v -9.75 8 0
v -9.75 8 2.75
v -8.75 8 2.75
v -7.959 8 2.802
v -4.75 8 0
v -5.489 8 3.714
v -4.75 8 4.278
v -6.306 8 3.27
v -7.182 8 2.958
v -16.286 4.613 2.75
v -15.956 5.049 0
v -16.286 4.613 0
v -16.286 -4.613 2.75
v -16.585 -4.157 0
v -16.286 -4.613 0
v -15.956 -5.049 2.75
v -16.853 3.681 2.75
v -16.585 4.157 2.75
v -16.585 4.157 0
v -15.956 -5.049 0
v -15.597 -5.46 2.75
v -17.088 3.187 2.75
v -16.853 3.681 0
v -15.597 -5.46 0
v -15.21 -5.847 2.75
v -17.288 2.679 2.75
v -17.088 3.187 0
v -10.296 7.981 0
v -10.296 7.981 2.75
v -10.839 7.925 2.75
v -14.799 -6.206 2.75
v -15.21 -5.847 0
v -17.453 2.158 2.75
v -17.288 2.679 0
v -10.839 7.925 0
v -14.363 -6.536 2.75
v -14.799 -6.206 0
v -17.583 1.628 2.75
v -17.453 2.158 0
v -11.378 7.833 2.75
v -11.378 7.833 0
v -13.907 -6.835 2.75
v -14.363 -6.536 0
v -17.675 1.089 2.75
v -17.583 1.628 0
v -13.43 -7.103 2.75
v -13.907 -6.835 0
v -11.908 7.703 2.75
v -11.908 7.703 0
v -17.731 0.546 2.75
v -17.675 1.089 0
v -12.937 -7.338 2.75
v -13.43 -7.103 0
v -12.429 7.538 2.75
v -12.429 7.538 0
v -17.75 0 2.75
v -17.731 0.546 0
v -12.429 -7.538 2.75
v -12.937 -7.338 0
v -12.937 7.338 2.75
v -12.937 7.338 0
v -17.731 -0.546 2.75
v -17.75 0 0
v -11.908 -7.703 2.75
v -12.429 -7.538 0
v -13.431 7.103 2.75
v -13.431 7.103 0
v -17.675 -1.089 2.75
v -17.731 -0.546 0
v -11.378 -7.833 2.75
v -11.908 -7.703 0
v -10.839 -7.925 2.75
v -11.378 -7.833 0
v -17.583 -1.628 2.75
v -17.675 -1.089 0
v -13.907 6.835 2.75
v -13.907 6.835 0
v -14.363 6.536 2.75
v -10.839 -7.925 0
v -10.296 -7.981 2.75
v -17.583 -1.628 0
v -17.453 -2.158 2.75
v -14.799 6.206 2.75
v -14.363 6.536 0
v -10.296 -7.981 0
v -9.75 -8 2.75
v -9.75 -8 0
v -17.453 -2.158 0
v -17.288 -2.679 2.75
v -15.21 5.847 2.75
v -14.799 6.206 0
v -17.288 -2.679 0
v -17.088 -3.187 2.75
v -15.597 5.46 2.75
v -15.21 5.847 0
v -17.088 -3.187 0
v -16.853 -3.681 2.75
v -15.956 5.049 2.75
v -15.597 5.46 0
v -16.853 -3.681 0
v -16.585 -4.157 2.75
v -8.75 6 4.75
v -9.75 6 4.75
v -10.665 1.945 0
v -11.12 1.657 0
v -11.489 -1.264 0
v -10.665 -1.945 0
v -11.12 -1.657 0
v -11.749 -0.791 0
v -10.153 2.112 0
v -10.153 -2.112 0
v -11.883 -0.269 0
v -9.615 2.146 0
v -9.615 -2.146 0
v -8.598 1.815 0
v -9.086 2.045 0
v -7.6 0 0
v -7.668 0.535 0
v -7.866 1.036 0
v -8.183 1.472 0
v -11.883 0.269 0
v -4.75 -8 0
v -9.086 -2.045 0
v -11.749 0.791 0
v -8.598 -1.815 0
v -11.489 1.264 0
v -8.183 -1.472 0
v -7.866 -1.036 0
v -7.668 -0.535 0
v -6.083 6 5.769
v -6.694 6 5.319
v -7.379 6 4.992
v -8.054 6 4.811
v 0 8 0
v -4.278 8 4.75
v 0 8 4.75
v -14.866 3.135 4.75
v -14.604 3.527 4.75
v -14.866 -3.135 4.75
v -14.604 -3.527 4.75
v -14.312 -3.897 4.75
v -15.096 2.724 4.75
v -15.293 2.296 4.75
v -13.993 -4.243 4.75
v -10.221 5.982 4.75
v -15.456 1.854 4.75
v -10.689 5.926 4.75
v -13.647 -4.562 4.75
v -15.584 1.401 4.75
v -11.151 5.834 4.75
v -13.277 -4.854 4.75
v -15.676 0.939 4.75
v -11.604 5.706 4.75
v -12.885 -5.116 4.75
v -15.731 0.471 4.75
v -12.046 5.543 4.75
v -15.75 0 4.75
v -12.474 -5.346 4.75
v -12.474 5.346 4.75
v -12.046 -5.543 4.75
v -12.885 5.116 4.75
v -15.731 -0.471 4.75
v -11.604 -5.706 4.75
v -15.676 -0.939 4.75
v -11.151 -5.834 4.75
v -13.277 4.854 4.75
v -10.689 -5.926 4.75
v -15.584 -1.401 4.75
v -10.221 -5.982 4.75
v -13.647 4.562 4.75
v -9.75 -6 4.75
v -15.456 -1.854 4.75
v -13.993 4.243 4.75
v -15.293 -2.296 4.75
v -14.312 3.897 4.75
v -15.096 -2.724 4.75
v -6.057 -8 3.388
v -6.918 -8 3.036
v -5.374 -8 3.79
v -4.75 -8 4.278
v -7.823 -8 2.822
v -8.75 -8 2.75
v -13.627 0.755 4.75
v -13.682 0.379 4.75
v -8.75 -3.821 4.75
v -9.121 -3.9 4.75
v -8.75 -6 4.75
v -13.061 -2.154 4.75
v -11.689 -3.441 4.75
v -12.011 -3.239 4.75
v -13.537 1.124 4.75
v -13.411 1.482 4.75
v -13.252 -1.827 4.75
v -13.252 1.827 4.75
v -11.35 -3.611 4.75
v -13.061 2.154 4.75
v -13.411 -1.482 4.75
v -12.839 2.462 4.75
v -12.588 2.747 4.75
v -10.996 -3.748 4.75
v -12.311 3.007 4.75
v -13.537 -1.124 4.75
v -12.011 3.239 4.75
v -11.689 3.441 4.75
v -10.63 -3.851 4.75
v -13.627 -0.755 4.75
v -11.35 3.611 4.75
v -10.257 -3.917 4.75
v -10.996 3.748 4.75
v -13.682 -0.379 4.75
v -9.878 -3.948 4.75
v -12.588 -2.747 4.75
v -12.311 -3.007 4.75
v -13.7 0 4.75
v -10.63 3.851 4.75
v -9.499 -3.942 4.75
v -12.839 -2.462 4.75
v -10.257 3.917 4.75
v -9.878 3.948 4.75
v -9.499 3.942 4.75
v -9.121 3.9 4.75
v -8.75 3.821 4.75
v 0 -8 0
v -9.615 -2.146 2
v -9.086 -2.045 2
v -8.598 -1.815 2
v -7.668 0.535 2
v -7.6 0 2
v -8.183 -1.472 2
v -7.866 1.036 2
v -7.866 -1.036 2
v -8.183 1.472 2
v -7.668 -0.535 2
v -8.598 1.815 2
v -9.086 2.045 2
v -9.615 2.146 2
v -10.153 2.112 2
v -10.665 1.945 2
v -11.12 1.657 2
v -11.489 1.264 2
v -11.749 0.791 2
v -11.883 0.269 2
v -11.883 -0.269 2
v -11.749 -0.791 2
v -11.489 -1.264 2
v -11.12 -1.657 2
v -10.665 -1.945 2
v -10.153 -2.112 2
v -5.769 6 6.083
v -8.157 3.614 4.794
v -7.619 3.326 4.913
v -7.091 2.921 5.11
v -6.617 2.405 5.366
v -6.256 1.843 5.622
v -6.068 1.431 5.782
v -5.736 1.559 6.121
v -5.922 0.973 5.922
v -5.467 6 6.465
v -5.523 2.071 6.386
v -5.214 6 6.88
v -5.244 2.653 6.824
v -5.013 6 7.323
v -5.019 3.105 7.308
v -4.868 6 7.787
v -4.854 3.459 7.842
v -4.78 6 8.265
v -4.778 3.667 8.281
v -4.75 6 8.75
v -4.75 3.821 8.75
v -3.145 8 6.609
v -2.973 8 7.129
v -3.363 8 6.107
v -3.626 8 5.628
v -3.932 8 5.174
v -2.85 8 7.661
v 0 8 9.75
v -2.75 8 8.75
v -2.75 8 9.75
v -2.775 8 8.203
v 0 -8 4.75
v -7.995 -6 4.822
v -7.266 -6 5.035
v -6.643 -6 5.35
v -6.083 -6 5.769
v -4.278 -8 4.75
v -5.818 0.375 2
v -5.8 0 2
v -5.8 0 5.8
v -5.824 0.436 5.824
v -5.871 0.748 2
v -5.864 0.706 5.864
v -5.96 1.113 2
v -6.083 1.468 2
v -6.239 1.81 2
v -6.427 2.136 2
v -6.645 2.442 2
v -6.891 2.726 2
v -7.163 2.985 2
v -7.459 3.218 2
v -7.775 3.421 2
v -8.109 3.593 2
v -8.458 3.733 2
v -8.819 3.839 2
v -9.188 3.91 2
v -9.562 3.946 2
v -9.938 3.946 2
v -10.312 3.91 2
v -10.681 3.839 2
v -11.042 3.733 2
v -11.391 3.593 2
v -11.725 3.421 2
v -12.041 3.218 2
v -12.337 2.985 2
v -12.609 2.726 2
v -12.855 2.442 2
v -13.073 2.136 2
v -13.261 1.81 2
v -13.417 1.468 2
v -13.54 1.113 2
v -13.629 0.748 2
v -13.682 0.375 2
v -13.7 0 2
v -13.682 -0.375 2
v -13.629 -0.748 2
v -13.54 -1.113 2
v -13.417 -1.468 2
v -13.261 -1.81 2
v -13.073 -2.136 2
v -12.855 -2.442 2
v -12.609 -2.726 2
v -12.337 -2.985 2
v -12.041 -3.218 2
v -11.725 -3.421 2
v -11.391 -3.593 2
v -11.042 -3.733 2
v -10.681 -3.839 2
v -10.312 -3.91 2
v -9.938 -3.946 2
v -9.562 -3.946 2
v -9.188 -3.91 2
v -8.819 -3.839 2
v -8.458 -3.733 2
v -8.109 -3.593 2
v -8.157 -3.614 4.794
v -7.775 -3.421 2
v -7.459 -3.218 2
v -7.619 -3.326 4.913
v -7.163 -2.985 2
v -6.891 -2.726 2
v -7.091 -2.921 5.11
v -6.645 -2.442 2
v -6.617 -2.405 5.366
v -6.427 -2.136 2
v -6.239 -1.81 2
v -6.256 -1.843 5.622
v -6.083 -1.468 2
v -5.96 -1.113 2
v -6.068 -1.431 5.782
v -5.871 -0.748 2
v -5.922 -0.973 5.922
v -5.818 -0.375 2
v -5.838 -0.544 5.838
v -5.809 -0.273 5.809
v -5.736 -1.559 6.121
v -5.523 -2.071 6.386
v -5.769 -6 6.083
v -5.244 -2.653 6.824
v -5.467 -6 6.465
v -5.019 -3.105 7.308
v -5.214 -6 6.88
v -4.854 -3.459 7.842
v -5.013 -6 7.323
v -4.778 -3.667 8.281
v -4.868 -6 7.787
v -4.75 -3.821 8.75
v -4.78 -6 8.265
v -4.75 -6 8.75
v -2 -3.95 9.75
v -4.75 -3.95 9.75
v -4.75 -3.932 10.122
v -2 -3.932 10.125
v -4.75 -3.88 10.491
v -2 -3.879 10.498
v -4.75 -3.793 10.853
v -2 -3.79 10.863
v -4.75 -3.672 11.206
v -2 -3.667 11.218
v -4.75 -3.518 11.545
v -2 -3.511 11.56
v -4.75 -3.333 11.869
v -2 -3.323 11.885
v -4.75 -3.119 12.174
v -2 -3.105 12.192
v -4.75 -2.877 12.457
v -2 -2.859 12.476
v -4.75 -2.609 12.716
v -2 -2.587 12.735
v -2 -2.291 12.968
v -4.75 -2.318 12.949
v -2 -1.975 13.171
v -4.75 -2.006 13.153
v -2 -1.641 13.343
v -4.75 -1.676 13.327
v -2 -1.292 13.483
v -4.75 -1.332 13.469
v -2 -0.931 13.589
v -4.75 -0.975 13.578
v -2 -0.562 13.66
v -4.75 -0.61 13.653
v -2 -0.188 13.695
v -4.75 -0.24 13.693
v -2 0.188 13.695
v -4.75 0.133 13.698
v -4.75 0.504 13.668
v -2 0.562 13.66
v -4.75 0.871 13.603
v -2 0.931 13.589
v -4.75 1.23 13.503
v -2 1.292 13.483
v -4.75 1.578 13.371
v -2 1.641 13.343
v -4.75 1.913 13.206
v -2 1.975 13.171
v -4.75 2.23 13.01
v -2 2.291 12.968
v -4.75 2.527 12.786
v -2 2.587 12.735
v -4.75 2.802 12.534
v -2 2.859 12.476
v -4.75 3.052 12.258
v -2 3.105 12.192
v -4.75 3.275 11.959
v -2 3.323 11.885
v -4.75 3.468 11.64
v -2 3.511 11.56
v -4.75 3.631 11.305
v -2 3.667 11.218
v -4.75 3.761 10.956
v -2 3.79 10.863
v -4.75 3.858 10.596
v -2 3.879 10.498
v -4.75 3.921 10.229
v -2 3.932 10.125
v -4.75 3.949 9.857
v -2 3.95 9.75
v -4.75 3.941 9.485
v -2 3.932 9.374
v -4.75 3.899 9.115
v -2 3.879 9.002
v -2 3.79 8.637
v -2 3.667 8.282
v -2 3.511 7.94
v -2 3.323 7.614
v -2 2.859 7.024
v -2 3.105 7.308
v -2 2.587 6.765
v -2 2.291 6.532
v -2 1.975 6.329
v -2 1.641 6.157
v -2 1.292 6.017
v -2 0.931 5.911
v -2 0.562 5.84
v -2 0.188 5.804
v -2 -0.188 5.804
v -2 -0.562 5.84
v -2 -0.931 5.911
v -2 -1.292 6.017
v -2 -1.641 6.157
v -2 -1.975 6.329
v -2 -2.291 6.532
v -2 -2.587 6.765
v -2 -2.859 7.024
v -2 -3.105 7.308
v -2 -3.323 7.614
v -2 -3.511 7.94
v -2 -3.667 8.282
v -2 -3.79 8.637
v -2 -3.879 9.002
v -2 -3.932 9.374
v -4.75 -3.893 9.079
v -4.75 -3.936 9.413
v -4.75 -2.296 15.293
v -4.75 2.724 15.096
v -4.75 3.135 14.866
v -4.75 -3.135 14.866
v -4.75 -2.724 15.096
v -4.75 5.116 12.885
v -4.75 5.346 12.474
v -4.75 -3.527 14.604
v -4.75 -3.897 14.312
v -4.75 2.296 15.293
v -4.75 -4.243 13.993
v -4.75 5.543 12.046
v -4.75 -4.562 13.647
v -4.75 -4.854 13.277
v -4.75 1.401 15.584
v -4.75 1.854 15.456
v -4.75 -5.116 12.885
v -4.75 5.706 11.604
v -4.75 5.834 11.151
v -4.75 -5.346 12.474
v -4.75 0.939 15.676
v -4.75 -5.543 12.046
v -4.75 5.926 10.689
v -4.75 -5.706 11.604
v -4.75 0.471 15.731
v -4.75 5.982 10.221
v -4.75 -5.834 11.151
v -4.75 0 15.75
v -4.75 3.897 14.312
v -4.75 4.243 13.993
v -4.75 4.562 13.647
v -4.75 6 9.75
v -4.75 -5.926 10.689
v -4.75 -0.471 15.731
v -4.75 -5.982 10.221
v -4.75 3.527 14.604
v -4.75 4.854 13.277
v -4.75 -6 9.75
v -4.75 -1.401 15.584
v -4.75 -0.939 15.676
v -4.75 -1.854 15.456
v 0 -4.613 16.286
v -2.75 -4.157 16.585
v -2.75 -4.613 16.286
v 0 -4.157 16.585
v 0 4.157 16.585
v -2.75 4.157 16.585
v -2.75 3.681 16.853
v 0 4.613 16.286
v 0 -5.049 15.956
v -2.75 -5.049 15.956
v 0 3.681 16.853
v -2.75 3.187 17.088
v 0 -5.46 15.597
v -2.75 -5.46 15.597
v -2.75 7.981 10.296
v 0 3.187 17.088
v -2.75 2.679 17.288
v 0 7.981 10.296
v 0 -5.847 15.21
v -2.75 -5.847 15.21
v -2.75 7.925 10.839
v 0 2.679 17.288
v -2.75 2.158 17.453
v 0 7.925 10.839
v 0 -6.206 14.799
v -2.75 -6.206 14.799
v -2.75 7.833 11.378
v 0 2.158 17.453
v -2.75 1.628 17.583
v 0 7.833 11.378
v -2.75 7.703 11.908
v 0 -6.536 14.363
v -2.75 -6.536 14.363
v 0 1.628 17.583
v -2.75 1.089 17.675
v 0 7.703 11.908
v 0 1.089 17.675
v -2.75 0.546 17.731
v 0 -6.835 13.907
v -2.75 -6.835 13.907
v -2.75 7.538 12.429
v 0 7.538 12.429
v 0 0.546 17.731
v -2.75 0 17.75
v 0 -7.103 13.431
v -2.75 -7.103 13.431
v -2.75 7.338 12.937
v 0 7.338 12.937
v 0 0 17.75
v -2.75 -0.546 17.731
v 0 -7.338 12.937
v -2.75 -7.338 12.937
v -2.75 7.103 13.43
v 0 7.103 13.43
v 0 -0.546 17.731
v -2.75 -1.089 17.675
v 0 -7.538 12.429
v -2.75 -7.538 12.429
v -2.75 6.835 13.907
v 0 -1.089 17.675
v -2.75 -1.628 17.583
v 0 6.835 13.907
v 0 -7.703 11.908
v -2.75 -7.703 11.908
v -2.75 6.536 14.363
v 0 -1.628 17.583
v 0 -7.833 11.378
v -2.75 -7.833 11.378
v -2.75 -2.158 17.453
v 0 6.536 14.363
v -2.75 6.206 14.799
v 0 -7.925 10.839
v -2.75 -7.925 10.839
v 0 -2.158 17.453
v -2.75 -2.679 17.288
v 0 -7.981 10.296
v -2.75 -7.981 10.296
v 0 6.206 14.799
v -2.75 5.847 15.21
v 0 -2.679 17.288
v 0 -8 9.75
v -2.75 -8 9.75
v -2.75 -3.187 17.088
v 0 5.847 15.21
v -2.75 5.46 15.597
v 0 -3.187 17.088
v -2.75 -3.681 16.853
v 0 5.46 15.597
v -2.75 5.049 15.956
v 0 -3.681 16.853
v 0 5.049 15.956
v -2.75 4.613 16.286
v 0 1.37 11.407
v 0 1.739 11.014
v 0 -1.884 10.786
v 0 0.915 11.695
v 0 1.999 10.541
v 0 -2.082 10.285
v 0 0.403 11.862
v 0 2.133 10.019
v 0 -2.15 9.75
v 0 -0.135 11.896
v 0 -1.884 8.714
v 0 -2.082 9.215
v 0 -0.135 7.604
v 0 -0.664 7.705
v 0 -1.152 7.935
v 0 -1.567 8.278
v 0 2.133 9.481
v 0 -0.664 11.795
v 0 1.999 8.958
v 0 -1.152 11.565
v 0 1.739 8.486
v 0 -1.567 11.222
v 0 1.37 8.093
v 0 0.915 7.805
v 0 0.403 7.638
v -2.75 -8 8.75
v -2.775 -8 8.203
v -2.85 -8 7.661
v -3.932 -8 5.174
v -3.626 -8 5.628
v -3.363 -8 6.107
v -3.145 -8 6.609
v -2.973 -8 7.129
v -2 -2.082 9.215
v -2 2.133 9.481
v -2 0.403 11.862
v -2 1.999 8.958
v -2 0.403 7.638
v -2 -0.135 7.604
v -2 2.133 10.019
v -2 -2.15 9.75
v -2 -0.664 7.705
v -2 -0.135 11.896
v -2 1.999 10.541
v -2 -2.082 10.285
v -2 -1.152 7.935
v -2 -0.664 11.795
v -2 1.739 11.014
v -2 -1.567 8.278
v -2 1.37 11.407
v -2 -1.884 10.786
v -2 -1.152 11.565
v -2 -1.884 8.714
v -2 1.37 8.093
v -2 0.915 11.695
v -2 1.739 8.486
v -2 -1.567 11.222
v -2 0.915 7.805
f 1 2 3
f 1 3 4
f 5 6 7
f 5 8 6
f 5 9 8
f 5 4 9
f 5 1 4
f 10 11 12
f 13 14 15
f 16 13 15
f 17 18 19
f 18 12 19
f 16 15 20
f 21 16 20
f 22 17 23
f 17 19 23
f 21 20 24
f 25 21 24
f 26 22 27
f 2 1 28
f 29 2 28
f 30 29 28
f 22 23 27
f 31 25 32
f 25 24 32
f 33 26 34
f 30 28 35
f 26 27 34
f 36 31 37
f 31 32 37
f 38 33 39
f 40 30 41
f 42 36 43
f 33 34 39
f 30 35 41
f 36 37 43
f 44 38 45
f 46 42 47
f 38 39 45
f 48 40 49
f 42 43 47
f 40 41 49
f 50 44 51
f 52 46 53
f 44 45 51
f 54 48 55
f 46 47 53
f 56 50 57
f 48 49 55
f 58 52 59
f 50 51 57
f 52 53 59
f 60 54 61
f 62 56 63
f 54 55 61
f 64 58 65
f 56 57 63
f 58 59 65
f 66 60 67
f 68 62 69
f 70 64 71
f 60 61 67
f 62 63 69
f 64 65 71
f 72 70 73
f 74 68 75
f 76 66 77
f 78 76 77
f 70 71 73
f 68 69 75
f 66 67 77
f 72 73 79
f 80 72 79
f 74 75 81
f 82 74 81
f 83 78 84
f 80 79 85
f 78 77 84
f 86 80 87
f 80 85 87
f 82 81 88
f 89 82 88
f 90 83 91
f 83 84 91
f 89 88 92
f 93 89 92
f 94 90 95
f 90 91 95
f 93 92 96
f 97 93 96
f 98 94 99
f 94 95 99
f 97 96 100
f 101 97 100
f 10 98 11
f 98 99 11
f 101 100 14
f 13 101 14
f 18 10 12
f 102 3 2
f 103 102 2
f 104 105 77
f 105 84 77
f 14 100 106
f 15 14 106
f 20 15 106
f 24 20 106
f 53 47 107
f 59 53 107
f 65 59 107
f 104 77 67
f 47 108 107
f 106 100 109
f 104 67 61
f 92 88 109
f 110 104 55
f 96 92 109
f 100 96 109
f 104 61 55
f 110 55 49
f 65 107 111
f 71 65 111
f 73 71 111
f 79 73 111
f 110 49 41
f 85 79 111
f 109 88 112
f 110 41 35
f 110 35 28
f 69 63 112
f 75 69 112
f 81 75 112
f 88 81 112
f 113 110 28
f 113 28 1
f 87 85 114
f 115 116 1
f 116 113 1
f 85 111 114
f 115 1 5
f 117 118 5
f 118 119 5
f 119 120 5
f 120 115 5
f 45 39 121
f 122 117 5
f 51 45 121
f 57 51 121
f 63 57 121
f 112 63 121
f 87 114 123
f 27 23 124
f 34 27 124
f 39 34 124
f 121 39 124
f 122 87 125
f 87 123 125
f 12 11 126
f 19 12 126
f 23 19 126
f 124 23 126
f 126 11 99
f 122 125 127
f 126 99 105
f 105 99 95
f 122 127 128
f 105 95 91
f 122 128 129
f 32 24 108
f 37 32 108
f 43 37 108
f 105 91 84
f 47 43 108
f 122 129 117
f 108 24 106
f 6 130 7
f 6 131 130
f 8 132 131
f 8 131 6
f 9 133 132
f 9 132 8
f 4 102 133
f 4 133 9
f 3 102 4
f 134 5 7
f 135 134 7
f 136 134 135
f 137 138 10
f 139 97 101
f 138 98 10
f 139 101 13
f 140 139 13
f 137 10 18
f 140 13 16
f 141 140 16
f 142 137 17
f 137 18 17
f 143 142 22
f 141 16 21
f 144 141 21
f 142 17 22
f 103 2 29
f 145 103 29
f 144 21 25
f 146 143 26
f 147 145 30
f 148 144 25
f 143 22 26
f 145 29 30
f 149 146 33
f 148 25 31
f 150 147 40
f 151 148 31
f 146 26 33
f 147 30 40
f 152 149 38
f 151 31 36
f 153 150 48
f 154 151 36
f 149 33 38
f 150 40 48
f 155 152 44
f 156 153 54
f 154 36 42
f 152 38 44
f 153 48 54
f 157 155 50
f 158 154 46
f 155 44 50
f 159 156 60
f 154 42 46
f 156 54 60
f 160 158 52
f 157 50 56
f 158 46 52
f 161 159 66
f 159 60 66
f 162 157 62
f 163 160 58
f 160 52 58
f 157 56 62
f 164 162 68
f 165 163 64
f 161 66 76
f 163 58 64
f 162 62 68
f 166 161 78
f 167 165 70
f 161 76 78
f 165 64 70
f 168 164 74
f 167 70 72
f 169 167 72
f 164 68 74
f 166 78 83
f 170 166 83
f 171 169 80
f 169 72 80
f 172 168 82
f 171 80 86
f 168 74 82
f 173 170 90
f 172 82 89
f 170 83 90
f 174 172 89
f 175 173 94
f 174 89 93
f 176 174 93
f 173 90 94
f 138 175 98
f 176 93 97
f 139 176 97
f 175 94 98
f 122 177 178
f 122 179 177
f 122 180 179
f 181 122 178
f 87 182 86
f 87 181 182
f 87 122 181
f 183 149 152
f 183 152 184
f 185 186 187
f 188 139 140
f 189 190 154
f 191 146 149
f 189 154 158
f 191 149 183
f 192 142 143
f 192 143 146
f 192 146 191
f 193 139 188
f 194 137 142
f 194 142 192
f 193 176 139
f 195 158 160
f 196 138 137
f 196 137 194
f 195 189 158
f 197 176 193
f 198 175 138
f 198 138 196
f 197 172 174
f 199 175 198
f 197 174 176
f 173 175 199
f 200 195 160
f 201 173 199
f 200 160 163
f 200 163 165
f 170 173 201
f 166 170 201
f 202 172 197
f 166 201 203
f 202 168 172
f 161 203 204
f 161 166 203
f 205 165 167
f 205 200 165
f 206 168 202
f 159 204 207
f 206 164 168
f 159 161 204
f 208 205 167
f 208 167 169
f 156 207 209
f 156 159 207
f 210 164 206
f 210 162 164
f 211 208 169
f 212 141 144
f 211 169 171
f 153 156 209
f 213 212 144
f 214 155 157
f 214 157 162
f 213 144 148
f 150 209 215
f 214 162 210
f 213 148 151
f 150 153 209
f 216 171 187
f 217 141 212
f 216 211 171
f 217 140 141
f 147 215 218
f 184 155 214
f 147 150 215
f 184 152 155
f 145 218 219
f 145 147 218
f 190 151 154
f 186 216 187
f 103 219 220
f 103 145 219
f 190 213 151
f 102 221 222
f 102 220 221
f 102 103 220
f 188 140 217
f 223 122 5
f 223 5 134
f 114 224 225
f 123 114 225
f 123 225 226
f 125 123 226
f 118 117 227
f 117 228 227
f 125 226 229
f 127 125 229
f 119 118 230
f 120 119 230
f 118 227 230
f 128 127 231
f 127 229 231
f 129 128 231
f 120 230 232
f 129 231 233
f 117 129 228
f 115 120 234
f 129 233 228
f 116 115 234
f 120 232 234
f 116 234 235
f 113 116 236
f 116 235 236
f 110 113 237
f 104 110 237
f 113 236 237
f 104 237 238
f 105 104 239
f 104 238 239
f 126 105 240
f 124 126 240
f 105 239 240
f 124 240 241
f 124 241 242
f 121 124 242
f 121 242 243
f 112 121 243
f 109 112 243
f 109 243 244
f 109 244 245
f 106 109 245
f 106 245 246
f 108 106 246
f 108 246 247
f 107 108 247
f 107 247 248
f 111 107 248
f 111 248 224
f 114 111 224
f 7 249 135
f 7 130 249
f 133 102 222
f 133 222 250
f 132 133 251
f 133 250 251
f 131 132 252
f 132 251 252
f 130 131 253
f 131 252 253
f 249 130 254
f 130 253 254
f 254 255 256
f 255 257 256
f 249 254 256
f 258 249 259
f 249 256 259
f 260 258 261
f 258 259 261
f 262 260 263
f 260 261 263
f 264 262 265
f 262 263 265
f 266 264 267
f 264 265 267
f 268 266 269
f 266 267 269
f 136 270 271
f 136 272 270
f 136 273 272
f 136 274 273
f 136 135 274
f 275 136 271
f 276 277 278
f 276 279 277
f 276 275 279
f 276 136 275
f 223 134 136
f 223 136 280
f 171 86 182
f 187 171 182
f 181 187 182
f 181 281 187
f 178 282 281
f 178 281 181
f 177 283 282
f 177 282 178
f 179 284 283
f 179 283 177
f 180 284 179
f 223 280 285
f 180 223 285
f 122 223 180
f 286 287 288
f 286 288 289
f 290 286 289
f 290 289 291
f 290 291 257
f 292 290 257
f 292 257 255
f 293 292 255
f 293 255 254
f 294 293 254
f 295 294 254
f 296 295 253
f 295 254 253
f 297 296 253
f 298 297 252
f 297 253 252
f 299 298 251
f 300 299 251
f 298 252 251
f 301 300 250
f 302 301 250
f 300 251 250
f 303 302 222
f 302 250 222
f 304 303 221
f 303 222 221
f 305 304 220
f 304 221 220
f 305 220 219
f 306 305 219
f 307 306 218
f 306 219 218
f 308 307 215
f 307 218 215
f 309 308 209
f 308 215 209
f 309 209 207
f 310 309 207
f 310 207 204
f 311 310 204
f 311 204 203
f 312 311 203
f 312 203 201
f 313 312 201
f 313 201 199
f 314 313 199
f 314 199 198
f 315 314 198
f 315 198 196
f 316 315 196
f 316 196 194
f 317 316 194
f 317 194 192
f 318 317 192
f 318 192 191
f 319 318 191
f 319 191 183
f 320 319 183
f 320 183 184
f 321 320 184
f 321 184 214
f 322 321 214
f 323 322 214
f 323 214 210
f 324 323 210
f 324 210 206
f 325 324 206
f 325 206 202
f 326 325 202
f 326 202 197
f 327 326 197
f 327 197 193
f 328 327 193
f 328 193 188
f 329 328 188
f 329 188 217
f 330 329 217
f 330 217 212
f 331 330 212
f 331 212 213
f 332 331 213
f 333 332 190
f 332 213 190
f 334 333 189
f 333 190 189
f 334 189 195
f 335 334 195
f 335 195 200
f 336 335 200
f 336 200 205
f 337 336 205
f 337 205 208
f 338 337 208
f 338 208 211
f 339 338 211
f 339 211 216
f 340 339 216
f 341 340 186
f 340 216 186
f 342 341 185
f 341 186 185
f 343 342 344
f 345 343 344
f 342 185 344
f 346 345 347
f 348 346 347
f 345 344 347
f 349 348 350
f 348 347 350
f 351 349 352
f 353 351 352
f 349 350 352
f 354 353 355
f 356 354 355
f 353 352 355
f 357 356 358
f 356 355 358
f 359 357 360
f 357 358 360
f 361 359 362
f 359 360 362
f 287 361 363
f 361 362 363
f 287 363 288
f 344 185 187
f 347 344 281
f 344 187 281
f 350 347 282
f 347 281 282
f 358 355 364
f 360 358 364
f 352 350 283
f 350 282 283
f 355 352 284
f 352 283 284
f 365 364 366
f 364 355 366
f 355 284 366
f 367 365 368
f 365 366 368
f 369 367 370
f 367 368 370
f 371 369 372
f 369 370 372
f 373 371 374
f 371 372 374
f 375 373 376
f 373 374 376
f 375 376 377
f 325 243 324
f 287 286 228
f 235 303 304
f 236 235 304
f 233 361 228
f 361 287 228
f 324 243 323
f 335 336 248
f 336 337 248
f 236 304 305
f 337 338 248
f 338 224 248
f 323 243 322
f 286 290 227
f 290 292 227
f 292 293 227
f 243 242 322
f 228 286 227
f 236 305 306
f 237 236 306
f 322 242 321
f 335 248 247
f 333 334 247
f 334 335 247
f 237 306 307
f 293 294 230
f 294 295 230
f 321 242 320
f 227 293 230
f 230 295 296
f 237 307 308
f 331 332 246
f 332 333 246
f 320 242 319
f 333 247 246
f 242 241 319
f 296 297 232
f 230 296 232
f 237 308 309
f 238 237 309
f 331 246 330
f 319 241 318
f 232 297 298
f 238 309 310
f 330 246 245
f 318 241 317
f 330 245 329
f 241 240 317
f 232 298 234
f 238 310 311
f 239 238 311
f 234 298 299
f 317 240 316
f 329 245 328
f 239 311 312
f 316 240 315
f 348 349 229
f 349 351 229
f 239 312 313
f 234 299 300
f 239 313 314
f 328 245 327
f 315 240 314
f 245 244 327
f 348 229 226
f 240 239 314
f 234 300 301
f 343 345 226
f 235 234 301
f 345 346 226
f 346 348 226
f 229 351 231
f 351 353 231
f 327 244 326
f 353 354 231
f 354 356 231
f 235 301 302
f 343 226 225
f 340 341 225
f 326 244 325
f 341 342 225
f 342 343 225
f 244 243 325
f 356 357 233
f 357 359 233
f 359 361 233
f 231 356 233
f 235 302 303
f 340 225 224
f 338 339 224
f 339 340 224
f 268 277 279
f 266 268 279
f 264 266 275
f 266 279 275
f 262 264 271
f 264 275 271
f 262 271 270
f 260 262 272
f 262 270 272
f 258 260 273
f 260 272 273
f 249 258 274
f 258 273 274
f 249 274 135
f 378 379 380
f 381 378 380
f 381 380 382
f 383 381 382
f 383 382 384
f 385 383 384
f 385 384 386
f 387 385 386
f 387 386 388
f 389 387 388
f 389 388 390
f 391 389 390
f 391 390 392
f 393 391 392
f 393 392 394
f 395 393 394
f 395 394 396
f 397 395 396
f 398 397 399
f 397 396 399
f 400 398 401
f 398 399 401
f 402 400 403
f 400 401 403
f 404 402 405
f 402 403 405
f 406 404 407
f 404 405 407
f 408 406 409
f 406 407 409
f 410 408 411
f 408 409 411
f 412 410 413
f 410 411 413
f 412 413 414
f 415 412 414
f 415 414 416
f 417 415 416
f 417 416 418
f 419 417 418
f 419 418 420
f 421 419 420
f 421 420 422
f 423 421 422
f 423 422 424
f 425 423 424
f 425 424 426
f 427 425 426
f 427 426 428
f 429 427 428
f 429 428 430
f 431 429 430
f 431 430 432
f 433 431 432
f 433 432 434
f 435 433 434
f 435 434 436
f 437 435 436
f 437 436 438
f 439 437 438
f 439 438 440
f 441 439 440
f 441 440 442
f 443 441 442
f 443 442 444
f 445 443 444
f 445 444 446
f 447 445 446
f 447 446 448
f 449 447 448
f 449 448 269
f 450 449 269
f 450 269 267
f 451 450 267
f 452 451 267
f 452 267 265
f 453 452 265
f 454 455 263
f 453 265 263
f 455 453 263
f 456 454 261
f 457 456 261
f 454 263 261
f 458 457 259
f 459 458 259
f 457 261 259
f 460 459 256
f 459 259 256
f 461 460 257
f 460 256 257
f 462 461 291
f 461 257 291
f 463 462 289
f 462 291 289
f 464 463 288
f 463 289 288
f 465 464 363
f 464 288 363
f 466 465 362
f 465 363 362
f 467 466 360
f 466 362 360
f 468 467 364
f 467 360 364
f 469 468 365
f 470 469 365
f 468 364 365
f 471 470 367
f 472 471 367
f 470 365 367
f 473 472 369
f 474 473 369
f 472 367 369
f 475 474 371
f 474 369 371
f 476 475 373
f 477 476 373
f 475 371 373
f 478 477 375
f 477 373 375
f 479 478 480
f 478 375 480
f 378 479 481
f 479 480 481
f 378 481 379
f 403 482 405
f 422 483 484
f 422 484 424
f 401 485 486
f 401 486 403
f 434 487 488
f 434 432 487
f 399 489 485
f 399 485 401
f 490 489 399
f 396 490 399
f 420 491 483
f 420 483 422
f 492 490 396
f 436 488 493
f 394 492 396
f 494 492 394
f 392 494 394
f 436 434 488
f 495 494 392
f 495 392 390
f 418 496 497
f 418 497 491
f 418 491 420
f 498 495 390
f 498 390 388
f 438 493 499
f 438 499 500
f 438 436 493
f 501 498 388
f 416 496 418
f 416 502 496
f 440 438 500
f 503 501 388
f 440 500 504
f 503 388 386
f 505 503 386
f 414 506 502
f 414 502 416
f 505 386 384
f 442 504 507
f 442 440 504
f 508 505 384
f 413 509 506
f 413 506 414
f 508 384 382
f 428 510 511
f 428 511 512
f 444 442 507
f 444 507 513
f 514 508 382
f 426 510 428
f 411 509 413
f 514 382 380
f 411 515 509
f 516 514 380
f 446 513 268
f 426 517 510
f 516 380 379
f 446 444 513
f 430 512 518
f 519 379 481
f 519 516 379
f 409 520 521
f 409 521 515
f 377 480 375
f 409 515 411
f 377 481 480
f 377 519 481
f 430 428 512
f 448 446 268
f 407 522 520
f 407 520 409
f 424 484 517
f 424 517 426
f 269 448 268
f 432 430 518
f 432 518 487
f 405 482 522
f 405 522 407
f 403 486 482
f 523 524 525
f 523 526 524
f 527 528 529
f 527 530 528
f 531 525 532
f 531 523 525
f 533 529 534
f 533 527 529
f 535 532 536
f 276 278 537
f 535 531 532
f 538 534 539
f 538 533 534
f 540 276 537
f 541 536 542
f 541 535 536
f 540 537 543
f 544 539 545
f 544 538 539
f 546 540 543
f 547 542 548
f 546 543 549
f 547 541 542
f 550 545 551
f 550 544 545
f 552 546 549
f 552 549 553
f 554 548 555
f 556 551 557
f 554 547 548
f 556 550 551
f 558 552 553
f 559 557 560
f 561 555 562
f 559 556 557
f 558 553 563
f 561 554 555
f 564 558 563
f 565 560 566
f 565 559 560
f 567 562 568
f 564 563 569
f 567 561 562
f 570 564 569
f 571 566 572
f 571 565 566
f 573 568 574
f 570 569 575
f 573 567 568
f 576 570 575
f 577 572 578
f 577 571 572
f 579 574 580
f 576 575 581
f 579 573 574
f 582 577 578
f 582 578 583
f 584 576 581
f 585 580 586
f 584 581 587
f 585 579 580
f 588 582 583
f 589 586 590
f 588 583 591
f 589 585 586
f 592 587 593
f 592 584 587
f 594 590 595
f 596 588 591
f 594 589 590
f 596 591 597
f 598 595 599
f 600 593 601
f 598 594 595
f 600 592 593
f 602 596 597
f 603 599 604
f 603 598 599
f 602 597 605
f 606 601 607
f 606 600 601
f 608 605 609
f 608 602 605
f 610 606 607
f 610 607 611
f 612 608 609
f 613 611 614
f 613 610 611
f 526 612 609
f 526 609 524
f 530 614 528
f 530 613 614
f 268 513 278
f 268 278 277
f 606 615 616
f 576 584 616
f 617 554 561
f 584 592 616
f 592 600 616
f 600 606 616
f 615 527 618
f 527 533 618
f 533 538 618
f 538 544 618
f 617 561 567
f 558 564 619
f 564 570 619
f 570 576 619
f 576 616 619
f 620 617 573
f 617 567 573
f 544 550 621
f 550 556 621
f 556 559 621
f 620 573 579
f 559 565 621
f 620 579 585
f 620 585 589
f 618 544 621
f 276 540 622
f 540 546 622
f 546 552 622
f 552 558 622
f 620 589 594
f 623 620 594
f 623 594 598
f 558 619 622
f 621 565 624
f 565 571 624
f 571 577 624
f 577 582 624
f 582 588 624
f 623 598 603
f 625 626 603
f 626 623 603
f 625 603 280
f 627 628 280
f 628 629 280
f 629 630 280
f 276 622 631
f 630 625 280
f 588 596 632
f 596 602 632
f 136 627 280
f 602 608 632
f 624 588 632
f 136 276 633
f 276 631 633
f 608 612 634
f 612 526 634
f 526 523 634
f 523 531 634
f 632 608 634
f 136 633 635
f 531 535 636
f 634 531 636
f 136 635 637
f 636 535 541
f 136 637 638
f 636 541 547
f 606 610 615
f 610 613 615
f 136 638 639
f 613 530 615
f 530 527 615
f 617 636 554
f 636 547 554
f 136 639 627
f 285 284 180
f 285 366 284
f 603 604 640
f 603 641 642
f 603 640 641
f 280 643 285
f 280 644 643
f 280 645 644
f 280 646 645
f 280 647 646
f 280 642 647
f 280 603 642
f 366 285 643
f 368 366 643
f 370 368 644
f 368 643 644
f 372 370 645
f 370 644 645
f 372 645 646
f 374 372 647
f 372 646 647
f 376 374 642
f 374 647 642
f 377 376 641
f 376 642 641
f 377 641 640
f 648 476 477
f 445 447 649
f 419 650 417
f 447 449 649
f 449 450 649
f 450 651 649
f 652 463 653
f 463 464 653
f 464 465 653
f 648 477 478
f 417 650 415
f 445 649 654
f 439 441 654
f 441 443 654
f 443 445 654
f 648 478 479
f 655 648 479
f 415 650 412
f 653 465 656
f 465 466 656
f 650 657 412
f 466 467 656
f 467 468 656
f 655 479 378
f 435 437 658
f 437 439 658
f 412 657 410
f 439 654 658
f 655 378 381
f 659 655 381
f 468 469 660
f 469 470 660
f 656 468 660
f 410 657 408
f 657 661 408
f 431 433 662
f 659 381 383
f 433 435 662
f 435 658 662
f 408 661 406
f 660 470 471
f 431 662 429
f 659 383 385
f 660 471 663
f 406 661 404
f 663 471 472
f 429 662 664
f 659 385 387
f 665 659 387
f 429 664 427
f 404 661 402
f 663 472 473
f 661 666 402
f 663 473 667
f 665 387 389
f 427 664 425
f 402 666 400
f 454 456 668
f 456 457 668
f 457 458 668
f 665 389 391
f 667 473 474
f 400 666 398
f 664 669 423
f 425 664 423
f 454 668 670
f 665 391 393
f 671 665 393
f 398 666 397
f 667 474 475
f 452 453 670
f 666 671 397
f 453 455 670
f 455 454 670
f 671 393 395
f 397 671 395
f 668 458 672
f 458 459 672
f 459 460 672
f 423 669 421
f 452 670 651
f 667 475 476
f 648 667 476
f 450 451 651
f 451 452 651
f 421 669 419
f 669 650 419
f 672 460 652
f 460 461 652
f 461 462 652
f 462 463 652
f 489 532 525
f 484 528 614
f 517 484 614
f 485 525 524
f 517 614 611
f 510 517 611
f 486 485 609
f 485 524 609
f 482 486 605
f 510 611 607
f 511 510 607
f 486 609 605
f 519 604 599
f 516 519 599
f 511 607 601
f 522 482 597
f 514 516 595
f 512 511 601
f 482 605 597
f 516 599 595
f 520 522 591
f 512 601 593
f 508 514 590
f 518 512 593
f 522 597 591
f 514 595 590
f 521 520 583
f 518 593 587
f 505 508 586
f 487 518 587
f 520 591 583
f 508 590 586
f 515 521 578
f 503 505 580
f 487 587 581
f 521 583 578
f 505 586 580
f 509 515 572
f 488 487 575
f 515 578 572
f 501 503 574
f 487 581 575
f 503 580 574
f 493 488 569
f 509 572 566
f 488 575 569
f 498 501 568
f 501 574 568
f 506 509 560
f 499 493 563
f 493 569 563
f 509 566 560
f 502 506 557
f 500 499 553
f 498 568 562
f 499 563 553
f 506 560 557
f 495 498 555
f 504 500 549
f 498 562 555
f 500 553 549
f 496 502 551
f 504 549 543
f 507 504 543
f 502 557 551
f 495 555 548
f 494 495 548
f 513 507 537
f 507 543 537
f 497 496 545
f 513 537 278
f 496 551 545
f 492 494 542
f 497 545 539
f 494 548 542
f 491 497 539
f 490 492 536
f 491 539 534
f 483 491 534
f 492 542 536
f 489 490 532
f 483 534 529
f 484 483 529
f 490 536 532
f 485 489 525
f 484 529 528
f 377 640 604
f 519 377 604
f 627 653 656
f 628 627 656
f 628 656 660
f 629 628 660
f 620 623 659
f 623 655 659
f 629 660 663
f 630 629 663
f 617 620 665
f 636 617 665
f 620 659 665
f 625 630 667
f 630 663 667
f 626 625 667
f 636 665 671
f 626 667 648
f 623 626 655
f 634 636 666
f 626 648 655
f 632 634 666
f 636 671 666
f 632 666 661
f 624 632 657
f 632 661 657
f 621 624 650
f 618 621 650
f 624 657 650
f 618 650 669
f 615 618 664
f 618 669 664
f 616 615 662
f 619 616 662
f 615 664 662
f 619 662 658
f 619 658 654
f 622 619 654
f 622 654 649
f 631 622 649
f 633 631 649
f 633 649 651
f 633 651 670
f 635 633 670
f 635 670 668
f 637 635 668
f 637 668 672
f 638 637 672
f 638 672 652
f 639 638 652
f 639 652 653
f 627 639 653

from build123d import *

# Parameters (mm, degrees)
PAD_DEPTH       = 4.75
PAD001_DEPTH    = 4.75
FILLET_R        = 4
CHAMFER_SIZE    = 2
SKETCH002_R     = 3.95
POCKET_DEPTH    = 2.75
SKETCH003_R     = 3.95
POCKET001_DEPTH = 2.75
SKETCH004_R     = 2.15
POCKET002_DEPTH = 2.001
SKETCH005_R     = 2.15
POCKET003_DEPTH = 2.001


with BuildPart() as part:
    # Sketch → Pad (new body)
    with BuildSketch(Plane.XY):
        with BuildLine():
            Line((-9.75, 8), (0, 8))
            Line((0, 8), (0, -8))
            Line((0, -8), (-9.749974, -8))
            ThreePointArc((-9.75, 8), (-17.749974, -1.3e-05), (-9.749974, -8))
        make_face()
    extrude(amount=PAD_DEPTH)

    # Sketch001 → Pad001 (new body)
    with BuildSketch(Plane.YZ):
        with BuildLine():
            Line((-8, 9.75), (-8, 0))
            Line((-8, 0), (8, 0))
            Line((8, 0), (8, 9.749968))
            ThreePointArc((8, 9.749968), (1.6e-05, 17.749968), (-8, 9.75))
        make_face()
    extrude(amount=-PAD001_DEPTH)

    # Fillet
    fillet_edges = [part.edges().sort_by_distance(p)[0] for p in [
        (-4.75, 0, 4.75),
    ]]
    fillet(fillet_edges, radius=FILLET_R)

    # Chamfer
    chamfer_edges = [part.edges().sort_by_distance(p)[0] for p in [
        (-17.749974, -1.3e-05, 4.75),
    ]]
    chamfer(chamfer_edges, length=CHAMFER_SIZE)

    # Sketch002 → Pocket (cut, symmetric)
    with BuildSketch(Plane.XY.offset(4.75)):
        with Locations((-9.749974, 0)):
            Circle(SKETCH002_R)
    extrude(amount=POCKET_DEPTH, both=True, mode=Mode.SUBTRACT)

    # Sketch003 → Pocket001 (cut, symmetric)
    with BuildSketch(Plane(origin=(-4.75, 0, 0), x_dir=(0, -1, 0), z_dir=(-1, 0, 0))):
        with Locations((0, 9.749968)):
            Circle(SKETCH003_R)
    extrude(amount=POCKET001_DEPTH, both=True, mode=Mode.SUBTRACT)

    # Sketch004 → Pocket002 (cut, through all)
    with BuildSketch(Plane(origin=(-2, 0, 0), x_dir=(0, -1, 0), z_dir=(-1, 0, 0))):
        with Locations((0, 9.749968)):
            Circle(SKETCH004_R)
    extrude(amount=-POCKET002_DEPTH, mode=Mode.SUBTRACT)

    # Sketch005 → Pocket003 (cut, through all)
    with BuildSketch(Plane.XY.offset(2)):
        with Locations((-9.749974, 0)):
            Circle(SKETCH005_R)
    extrude(amount=-POCKET003_DEPTH, mode=Mode.SUBTRACT)


solid = part.part
